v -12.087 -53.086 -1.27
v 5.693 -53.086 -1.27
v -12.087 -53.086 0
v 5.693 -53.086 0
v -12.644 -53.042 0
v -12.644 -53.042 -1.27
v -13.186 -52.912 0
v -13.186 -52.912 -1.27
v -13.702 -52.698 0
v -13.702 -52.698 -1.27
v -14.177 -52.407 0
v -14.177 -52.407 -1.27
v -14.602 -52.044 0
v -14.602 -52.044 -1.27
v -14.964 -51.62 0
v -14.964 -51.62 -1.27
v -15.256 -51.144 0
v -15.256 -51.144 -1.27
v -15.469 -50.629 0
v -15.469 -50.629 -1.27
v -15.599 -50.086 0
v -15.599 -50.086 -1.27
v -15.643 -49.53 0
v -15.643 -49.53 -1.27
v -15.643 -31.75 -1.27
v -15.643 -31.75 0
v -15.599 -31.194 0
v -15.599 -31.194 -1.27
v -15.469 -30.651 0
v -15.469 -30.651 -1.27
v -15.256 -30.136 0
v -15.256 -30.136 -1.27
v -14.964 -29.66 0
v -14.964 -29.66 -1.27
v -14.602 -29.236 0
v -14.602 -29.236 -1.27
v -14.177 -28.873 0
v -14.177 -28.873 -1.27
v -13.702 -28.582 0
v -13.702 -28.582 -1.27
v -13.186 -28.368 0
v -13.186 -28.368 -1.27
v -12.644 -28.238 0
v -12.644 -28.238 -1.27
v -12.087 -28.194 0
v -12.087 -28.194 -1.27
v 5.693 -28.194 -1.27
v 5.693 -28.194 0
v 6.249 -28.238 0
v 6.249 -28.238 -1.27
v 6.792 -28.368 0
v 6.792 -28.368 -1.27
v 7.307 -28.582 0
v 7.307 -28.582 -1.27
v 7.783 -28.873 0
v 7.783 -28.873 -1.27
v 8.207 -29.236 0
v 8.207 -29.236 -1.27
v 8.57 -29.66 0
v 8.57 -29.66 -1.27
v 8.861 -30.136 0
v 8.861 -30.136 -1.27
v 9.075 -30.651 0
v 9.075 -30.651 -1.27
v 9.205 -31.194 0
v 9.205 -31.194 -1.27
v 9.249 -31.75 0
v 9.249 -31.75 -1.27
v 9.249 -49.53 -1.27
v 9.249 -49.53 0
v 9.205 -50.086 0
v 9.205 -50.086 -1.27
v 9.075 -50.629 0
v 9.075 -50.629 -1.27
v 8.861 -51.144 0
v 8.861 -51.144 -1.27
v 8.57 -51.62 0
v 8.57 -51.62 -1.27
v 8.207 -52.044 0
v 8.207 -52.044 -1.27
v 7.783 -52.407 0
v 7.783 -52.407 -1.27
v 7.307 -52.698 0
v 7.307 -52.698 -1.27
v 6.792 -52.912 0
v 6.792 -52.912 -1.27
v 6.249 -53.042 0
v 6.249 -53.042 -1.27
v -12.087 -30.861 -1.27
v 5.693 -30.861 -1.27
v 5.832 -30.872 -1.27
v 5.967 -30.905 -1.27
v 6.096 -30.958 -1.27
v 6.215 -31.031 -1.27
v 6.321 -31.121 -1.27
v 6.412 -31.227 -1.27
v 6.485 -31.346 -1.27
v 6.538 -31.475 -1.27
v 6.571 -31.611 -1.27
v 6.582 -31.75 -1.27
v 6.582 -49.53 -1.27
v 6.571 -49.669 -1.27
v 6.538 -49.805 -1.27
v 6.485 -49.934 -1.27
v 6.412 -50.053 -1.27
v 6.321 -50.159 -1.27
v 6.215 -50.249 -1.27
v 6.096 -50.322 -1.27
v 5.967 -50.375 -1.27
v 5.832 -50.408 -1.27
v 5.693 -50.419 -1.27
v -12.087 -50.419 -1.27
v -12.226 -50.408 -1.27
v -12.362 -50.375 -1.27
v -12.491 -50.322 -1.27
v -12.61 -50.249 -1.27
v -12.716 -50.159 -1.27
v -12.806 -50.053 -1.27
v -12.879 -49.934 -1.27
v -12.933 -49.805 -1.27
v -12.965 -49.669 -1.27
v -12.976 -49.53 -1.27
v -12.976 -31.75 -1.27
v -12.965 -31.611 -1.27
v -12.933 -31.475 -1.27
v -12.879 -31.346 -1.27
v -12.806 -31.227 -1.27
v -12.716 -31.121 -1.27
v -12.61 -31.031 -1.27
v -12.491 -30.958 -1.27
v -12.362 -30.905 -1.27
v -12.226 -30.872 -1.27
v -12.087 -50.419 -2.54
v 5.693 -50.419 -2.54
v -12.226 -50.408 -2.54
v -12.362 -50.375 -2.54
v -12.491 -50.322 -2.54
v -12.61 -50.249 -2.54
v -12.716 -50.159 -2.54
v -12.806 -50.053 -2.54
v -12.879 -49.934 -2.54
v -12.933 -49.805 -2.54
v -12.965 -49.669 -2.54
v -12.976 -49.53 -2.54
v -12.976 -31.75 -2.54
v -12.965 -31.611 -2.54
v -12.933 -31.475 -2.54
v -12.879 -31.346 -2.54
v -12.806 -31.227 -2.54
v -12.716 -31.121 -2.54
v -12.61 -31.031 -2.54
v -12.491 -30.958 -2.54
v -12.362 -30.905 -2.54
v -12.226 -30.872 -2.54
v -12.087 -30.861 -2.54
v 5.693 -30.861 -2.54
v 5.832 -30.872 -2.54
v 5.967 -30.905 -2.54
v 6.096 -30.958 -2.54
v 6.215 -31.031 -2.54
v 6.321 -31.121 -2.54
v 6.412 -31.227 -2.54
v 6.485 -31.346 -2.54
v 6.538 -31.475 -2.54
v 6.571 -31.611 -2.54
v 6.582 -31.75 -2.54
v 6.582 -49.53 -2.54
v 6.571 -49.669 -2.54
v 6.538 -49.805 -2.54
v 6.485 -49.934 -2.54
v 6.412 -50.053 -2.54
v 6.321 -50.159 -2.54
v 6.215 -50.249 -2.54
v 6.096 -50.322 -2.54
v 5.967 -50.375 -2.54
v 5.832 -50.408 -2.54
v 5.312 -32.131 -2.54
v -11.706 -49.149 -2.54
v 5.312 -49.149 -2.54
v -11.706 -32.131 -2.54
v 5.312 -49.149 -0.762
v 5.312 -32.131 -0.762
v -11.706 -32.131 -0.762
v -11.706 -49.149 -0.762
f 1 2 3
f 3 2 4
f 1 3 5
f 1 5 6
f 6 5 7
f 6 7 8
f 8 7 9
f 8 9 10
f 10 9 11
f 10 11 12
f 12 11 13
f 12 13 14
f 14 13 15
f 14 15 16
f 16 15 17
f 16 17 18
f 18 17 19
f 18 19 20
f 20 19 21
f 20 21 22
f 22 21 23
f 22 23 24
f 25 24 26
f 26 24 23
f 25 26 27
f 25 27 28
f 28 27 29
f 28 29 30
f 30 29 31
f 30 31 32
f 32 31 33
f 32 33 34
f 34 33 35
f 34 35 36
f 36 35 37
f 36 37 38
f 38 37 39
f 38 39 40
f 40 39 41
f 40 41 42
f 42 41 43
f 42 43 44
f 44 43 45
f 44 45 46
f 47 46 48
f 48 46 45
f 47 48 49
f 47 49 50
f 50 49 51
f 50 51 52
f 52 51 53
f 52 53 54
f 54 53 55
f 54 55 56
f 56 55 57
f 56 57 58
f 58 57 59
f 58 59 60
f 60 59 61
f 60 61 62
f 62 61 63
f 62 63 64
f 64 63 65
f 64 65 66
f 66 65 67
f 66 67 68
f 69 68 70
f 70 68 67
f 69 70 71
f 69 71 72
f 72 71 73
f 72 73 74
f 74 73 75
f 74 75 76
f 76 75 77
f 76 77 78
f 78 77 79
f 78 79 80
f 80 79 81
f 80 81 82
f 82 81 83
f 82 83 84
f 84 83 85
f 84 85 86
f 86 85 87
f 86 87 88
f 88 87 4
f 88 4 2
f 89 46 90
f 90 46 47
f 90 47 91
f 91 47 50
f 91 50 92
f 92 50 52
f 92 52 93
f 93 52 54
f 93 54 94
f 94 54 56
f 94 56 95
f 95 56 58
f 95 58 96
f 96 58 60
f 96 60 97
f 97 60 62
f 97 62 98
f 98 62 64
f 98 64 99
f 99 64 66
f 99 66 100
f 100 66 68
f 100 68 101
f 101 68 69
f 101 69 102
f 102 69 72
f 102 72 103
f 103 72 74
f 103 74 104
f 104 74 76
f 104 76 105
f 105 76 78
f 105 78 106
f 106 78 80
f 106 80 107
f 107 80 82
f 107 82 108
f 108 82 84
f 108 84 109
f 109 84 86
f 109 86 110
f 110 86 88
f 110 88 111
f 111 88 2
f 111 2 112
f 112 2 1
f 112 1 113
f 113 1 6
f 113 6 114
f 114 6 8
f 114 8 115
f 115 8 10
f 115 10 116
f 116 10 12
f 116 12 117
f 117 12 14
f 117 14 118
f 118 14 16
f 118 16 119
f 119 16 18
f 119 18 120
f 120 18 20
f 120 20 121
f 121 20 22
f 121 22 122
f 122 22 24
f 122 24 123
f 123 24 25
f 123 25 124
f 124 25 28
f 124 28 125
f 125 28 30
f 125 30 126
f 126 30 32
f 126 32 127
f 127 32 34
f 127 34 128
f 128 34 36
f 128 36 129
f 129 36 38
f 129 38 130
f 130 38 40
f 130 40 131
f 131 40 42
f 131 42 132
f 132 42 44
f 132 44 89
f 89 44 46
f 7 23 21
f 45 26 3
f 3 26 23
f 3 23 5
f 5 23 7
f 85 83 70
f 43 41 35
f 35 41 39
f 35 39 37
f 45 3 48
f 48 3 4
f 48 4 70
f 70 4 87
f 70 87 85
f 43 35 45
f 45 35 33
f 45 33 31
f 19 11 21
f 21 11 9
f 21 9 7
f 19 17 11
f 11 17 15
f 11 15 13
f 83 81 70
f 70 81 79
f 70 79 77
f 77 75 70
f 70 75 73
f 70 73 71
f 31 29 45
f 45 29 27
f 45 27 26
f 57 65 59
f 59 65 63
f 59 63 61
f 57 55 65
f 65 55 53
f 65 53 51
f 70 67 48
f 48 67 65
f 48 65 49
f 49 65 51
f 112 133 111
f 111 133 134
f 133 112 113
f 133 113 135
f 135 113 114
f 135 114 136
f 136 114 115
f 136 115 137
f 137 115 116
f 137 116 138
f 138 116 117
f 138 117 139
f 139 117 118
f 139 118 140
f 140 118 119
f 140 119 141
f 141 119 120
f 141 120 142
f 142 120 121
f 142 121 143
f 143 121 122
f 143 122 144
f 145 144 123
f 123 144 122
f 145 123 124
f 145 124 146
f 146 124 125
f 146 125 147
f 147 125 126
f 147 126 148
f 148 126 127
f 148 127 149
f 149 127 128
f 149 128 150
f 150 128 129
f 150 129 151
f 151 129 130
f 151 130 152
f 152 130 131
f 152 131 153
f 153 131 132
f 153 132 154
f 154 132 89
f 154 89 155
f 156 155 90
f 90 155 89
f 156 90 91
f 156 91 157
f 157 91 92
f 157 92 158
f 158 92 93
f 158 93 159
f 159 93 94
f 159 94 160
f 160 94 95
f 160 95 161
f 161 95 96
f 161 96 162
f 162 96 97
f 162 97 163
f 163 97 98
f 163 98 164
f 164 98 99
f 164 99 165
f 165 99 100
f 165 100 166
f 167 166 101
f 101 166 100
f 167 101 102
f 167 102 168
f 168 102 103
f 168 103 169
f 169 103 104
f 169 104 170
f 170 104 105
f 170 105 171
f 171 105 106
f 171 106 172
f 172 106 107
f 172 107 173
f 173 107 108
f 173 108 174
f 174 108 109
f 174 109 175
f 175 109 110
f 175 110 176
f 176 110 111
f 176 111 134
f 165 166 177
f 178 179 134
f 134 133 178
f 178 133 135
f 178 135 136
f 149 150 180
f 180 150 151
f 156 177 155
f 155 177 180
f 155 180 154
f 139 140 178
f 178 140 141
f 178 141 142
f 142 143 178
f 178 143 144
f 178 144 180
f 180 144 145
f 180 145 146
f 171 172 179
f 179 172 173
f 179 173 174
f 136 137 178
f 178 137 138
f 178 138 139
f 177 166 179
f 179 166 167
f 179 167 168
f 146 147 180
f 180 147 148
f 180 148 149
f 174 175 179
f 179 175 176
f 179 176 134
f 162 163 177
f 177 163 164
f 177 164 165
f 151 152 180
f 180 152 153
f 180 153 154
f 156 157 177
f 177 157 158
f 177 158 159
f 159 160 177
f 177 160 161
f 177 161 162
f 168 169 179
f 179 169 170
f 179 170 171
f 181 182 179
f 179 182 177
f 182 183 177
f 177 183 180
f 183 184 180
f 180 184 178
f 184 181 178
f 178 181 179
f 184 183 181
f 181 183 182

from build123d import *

# Parameters (mm, degrees)
BOSS_EXTRUDE1_DEPTH = 1.27
BOSS_EXTRUDE2_DEPTH = 2.54
SKETCH2_W           = 17.018
SKETCH2_H           = 17.018
CUT_EXTRUDE1_DEPTH  = 1.778


with BuildPart() as part:
    # Sketch1 → Boss-Extrude1 (new body)
    with BuildSketch(Plane.XY):
        with BuildLine():
            ThreePointArc((9.248726154, -31.75), (8.207197868, -29.235528286), (5.692726154, -28.194))
            Line((5.692726154, -28.194), (-12.087273846, -28.194))
            ThreePointArc((-12.087273846, -28.194), (-14.60174556, -29.235528286), (-15.643273846, -31.75))
            Line((-15.643273846, -31.75), (-15.643273846, -49.53))
            ThreePointArc((-15.643273846, -49.53), (-14.60174556, -52.044471714), (-12.087273846, -53.086))
            Line((-12.087273846, -53.086), (5.692726154, -53.086))
            ThreePointArc((5.692726154, -53.086), (8.207197868, -52.044471714), (9.248726154, -49.53))
            Line((9.248726154, -49.53), (9.248726154, -31.75))
        make_face()
        with BuildLine():
            Line((6.581726154, -31.75), (6.581726154, -49.53))
            ThreePointArc((6.581726154, -49.53), (6.321344082, -50.158617928), (5.692726154, -50.419))
            Line((5.692726154, -50.419), (-12.087273846, -50.419))
            ThreePointArc((-12.087273846, -50.419), (-12.715891775, -50.158617928), (-12.976273846, -49.53))
            Line((-12.976273846, -49.53), (-12.976273846, -31.75))
            ThreePointArc((-12.976273846, -31.75), (-12.715891775, -31.121382072), (-12.087273846, -30.861))
            Line((-12.087273846, -30.861), (5.692726154, -30.861))
            ThreePointArc((5.692726154, -30.861), (6.321344082, -31.121382072), (6.581726154, -31.75))
        make_face(mode=Mode.SUBTRACT)
    extrude(amount=-BOSS_EXTRUDE1_DEPTH)

    # Sketch1<3> → Boss-Extrude2 (add)
    with BuildSketch(Plane.XY):
        with BuildLine():
            ThreePointArc((5.692726154, -50.419), (6.321344082, -50.158617928), (6.581726154, -49.53))
            Line((6.581726154, -49.53), (6.581726154, -31.75))
            ThreePointArc((6.581726154, -31.75), (6.321344082, -31.121382072), (5.692726154, -30.861))
            Line((5.692726154, -30.861), (-12.087273846, -30.861))
            ThreePointArc((-12.087273846, -30.861), (-12.715891775, -31.121382072), (-12.976273846, -31.75))
            Line((-12.976273846, -31.75), (-12.976273846, -49.53))
            ThreePointArc((-12.976273846, -49.53), (-12.715891775, -50.158617928), (-12.087273846, -50.419))
            Line((-12.087273846, -50.419), (5.692726154, -50.419))
        make_face()
    extrude(amount=-BOSS_EXTRUDE2_DEPTH)

    # Sketch2 → Cut-Extrude1 (cut)
    with BuildSketch(Plane(origin=(0, 0, -2.54), x_dir=(-1, 0, 0), z_dir=(0, 0, -1))):
        with Locations((3.197273846, -40.64)):
            Rectangle(SKETCH2_W, SKETCH2_H)
    extrude(amount=-CUT_EXTRUDE1_DEPTH, mode=Mode.SUBTRACT)


solid = part.part
